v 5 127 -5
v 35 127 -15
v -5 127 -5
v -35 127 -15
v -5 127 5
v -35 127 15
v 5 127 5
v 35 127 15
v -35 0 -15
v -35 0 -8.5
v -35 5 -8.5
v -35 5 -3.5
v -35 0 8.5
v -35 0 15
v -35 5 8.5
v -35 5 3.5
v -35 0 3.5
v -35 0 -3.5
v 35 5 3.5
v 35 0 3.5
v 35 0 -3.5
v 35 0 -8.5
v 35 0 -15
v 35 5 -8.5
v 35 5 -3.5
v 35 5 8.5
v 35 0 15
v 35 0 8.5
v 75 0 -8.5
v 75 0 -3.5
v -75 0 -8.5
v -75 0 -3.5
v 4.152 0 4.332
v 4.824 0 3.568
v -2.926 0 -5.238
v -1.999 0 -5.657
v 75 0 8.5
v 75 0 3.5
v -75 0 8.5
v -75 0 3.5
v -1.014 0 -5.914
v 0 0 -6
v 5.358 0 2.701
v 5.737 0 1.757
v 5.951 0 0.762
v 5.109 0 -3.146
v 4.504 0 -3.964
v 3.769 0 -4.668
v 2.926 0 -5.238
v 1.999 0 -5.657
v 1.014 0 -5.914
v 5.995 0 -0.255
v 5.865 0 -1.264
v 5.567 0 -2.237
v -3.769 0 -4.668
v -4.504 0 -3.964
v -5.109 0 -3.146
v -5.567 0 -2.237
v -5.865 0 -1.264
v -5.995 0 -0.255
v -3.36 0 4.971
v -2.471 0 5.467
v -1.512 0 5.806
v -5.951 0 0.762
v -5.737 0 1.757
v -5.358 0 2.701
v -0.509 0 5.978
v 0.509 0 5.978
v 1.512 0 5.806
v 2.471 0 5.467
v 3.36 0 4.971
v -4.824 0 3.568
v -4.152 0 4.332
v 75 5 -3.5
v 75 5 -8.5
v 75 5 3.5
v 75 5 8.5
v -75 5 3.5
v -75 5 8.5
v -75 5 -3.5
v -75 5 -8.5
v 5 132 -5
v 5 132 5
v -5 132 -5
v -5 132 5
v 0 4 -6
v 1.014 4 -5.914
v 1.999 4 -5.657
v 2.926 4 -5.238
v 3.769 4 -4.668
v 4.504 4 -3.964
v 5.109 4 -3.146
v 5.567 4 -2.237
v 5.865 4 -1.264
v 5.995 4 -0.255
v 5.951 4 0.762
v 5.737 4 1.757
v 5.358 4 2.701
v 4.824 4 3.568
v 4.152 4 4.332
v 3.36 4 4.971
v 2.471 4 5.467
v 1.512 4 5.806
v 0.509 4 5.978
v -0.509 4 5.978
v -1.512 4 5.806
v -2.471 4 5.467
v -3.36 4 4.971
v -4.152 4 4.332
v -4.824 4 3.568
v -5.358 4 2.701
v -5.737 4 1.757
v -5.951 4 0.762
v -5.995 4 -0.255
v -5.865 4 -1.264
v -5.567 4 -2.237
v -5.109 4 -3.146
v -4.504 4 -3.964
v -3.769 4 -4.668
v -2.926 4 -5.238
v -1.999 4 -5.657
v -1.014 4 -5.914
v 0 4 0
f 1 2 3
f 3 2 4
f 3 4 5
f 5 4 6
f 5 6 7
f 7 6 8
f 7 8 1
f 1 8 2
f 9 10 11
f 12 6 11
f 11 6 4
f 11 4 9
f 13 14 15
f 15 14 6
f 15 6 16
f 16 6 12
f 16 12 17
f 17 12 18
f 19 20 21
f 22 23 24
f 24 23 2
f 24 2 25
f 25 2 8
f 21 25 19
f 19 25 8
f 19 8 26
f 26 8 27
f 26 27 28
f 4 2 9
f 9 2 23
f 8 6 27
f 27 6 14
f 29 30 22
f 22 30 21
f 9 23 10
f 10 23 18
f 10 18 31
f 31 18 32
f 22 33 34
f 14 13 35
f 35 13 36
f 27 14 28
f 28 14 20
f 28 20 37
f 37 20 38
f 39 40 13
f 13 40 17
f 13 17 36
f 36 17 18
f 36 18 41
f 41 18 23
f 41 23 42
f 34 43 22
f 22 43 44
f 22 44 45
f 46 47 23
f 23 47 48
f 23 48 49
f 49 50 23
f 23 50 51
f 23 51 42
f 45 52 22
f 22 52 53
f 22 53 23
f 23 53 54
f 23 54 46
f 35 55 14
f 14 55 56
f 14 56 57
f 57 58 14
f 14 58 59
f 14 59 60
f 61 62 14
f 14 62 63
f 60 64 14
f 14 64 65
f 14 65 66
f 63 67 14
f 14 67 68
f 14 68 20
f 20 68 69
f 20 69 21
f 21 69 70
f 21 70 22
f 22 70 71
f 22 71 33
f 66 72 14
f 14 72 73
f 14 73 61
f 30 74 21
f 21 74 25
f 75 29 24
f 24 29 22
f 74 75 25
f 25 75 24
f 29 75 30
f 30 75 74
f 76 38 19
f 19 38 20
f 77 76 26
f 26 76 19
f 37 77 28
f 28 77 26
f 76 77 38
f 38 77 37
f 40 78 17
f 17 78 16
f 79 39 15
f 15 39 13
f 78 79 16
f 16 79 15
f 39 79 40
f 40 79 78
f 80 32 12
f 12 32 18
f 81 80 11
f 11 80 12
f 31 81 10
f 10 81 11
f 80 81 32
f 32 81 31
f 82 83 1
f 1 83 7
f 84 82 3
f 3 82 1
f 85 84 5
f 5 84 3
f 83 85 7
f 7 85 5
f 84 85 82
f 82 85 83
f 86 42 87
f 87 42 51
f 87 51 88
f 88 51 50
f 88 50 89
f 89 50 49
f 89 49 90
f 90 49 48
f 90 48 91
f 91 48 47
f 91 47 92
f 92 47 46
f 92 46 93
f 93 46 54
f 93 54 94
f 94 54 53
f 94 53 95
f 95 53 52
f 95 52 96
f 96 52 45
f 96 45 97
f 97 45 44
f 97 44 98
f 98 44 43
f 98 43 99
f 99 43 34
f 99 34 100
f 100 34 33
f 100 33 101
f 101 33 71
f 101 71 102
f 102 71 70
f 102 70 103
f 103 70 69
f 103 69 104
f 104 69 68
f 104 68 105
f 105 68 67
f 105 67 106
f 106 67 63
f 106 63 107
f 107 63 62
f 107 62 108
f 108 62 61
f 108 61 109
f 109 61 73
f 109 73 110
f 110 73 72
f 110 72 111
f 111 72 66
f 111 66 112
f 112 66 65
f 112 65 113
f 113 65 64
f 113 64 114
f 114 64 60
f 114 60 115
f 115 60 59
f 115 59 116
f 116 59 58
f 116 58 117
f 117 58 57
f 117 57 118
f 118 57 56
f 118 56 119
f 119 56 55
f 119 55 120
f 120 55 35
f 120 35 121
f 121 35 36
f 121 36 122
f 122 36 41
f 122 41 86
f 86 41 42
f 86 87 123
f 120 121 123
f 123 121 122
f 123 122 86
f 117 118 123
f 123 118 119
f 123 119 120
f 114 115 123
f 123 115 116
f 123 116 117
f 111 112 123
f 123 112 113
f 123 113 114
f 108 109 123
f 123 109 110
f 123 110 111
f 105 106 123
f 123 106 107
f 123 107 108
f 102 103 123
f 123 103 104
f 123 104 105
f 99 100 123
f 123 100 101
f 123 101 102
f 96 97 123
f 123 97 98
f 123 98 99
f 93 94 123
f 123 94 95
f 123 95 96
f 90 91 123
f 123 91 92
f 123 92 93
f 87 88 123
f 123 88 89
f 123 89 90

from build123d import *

# Parameters (mm, degrees)
SKETCH2_W           = 70
SKETCH2_H           = 30
BOSS_EXTRUDE1_DEPTH = 127
SKETCH3_W           = 5
SKETCH3_H           = 5
BOSS_EXTRUDE2_DEPTH = 40
SKETCH4_W           = 5
SKETCH4_H           = 5
BOSS_EXTRUDE3_DEPTH = 40
SKETCH5_W           = 10
SKETCH5_H           = 10
BOSS_EXTRUDE4_DEPTH = 5
SKETCH6_R           = 6
CUT_EXTRUDE1_DEPTH  = 4


with BuildPart() as part:
    # Sketch2 → Boss-Extrude1 (new body)
    with BuildSketch(Plane(origin=(0, 0, 0), x_dir=(1, 0, 0), z_dir=(0, 1, 0))):
        Rectangle(SKETCH2_W, SKETCH2_H)
    extrude(amount=BOSS_EXTRUDE1_DEPTH)

    # Sketch3 → Boss-Extrude2 (add)
    with BuildSketch(Plane(origin=(35, 0, 0), x_dir=(0, 0, -1), z_dir=(1, 0, 0))):
        with Locations((-6, 2.5)):
            Rectangle(SKETCH3_W, SKETCH3_H)
        with Locations((6, 2.5)):
            Rectangle(SKETCH3_W, SKETCH3_H)
    extrude(amount=BOSS_EXTRUDE2_DEPTH)

    # Sketch4 → Boss-Extrude3 (add)
    with BuildSketch(Plane.ZY.offset(35)):
        with Locations((-6, 2.5)):
            Rectangle(SKETCH4_W, SKETCH4_H)
        with Locations((6, 2.5)):
            Rectangle(SKETCH4_W, SKETCH4_H)
    extrude(amount=BOSS_EXTRUDE3_DEPTH)

    # Sketch5 → Boss-Extrude4 (add)
    with BuildSketch(Plane(origin=(0, 127, 0), x_dir=(1, 0, 0), z_dir=(0, 1, 0))):
        Rectangle(SKETCH5_W, SKETCH5_H)
    extrude(amount=BOSS_EXTRUDE4_DEPTH)

    # Sketch6 → Cut-Extrude1 (cut)
    with BuildSketch(Plane(origin=(0, 0, 0), x_dir=(-1, 0, 0), z_dir=(0, -1, 0))):
        with Locations(Location((0, 0, 0), (0, 0, 90))):
            Circle(SKETCH6_R)
    extrude(amount=-CUT_EXTRUDE1_DEPTH, mode=Mode.SUBTRACT)


solid = part.part
